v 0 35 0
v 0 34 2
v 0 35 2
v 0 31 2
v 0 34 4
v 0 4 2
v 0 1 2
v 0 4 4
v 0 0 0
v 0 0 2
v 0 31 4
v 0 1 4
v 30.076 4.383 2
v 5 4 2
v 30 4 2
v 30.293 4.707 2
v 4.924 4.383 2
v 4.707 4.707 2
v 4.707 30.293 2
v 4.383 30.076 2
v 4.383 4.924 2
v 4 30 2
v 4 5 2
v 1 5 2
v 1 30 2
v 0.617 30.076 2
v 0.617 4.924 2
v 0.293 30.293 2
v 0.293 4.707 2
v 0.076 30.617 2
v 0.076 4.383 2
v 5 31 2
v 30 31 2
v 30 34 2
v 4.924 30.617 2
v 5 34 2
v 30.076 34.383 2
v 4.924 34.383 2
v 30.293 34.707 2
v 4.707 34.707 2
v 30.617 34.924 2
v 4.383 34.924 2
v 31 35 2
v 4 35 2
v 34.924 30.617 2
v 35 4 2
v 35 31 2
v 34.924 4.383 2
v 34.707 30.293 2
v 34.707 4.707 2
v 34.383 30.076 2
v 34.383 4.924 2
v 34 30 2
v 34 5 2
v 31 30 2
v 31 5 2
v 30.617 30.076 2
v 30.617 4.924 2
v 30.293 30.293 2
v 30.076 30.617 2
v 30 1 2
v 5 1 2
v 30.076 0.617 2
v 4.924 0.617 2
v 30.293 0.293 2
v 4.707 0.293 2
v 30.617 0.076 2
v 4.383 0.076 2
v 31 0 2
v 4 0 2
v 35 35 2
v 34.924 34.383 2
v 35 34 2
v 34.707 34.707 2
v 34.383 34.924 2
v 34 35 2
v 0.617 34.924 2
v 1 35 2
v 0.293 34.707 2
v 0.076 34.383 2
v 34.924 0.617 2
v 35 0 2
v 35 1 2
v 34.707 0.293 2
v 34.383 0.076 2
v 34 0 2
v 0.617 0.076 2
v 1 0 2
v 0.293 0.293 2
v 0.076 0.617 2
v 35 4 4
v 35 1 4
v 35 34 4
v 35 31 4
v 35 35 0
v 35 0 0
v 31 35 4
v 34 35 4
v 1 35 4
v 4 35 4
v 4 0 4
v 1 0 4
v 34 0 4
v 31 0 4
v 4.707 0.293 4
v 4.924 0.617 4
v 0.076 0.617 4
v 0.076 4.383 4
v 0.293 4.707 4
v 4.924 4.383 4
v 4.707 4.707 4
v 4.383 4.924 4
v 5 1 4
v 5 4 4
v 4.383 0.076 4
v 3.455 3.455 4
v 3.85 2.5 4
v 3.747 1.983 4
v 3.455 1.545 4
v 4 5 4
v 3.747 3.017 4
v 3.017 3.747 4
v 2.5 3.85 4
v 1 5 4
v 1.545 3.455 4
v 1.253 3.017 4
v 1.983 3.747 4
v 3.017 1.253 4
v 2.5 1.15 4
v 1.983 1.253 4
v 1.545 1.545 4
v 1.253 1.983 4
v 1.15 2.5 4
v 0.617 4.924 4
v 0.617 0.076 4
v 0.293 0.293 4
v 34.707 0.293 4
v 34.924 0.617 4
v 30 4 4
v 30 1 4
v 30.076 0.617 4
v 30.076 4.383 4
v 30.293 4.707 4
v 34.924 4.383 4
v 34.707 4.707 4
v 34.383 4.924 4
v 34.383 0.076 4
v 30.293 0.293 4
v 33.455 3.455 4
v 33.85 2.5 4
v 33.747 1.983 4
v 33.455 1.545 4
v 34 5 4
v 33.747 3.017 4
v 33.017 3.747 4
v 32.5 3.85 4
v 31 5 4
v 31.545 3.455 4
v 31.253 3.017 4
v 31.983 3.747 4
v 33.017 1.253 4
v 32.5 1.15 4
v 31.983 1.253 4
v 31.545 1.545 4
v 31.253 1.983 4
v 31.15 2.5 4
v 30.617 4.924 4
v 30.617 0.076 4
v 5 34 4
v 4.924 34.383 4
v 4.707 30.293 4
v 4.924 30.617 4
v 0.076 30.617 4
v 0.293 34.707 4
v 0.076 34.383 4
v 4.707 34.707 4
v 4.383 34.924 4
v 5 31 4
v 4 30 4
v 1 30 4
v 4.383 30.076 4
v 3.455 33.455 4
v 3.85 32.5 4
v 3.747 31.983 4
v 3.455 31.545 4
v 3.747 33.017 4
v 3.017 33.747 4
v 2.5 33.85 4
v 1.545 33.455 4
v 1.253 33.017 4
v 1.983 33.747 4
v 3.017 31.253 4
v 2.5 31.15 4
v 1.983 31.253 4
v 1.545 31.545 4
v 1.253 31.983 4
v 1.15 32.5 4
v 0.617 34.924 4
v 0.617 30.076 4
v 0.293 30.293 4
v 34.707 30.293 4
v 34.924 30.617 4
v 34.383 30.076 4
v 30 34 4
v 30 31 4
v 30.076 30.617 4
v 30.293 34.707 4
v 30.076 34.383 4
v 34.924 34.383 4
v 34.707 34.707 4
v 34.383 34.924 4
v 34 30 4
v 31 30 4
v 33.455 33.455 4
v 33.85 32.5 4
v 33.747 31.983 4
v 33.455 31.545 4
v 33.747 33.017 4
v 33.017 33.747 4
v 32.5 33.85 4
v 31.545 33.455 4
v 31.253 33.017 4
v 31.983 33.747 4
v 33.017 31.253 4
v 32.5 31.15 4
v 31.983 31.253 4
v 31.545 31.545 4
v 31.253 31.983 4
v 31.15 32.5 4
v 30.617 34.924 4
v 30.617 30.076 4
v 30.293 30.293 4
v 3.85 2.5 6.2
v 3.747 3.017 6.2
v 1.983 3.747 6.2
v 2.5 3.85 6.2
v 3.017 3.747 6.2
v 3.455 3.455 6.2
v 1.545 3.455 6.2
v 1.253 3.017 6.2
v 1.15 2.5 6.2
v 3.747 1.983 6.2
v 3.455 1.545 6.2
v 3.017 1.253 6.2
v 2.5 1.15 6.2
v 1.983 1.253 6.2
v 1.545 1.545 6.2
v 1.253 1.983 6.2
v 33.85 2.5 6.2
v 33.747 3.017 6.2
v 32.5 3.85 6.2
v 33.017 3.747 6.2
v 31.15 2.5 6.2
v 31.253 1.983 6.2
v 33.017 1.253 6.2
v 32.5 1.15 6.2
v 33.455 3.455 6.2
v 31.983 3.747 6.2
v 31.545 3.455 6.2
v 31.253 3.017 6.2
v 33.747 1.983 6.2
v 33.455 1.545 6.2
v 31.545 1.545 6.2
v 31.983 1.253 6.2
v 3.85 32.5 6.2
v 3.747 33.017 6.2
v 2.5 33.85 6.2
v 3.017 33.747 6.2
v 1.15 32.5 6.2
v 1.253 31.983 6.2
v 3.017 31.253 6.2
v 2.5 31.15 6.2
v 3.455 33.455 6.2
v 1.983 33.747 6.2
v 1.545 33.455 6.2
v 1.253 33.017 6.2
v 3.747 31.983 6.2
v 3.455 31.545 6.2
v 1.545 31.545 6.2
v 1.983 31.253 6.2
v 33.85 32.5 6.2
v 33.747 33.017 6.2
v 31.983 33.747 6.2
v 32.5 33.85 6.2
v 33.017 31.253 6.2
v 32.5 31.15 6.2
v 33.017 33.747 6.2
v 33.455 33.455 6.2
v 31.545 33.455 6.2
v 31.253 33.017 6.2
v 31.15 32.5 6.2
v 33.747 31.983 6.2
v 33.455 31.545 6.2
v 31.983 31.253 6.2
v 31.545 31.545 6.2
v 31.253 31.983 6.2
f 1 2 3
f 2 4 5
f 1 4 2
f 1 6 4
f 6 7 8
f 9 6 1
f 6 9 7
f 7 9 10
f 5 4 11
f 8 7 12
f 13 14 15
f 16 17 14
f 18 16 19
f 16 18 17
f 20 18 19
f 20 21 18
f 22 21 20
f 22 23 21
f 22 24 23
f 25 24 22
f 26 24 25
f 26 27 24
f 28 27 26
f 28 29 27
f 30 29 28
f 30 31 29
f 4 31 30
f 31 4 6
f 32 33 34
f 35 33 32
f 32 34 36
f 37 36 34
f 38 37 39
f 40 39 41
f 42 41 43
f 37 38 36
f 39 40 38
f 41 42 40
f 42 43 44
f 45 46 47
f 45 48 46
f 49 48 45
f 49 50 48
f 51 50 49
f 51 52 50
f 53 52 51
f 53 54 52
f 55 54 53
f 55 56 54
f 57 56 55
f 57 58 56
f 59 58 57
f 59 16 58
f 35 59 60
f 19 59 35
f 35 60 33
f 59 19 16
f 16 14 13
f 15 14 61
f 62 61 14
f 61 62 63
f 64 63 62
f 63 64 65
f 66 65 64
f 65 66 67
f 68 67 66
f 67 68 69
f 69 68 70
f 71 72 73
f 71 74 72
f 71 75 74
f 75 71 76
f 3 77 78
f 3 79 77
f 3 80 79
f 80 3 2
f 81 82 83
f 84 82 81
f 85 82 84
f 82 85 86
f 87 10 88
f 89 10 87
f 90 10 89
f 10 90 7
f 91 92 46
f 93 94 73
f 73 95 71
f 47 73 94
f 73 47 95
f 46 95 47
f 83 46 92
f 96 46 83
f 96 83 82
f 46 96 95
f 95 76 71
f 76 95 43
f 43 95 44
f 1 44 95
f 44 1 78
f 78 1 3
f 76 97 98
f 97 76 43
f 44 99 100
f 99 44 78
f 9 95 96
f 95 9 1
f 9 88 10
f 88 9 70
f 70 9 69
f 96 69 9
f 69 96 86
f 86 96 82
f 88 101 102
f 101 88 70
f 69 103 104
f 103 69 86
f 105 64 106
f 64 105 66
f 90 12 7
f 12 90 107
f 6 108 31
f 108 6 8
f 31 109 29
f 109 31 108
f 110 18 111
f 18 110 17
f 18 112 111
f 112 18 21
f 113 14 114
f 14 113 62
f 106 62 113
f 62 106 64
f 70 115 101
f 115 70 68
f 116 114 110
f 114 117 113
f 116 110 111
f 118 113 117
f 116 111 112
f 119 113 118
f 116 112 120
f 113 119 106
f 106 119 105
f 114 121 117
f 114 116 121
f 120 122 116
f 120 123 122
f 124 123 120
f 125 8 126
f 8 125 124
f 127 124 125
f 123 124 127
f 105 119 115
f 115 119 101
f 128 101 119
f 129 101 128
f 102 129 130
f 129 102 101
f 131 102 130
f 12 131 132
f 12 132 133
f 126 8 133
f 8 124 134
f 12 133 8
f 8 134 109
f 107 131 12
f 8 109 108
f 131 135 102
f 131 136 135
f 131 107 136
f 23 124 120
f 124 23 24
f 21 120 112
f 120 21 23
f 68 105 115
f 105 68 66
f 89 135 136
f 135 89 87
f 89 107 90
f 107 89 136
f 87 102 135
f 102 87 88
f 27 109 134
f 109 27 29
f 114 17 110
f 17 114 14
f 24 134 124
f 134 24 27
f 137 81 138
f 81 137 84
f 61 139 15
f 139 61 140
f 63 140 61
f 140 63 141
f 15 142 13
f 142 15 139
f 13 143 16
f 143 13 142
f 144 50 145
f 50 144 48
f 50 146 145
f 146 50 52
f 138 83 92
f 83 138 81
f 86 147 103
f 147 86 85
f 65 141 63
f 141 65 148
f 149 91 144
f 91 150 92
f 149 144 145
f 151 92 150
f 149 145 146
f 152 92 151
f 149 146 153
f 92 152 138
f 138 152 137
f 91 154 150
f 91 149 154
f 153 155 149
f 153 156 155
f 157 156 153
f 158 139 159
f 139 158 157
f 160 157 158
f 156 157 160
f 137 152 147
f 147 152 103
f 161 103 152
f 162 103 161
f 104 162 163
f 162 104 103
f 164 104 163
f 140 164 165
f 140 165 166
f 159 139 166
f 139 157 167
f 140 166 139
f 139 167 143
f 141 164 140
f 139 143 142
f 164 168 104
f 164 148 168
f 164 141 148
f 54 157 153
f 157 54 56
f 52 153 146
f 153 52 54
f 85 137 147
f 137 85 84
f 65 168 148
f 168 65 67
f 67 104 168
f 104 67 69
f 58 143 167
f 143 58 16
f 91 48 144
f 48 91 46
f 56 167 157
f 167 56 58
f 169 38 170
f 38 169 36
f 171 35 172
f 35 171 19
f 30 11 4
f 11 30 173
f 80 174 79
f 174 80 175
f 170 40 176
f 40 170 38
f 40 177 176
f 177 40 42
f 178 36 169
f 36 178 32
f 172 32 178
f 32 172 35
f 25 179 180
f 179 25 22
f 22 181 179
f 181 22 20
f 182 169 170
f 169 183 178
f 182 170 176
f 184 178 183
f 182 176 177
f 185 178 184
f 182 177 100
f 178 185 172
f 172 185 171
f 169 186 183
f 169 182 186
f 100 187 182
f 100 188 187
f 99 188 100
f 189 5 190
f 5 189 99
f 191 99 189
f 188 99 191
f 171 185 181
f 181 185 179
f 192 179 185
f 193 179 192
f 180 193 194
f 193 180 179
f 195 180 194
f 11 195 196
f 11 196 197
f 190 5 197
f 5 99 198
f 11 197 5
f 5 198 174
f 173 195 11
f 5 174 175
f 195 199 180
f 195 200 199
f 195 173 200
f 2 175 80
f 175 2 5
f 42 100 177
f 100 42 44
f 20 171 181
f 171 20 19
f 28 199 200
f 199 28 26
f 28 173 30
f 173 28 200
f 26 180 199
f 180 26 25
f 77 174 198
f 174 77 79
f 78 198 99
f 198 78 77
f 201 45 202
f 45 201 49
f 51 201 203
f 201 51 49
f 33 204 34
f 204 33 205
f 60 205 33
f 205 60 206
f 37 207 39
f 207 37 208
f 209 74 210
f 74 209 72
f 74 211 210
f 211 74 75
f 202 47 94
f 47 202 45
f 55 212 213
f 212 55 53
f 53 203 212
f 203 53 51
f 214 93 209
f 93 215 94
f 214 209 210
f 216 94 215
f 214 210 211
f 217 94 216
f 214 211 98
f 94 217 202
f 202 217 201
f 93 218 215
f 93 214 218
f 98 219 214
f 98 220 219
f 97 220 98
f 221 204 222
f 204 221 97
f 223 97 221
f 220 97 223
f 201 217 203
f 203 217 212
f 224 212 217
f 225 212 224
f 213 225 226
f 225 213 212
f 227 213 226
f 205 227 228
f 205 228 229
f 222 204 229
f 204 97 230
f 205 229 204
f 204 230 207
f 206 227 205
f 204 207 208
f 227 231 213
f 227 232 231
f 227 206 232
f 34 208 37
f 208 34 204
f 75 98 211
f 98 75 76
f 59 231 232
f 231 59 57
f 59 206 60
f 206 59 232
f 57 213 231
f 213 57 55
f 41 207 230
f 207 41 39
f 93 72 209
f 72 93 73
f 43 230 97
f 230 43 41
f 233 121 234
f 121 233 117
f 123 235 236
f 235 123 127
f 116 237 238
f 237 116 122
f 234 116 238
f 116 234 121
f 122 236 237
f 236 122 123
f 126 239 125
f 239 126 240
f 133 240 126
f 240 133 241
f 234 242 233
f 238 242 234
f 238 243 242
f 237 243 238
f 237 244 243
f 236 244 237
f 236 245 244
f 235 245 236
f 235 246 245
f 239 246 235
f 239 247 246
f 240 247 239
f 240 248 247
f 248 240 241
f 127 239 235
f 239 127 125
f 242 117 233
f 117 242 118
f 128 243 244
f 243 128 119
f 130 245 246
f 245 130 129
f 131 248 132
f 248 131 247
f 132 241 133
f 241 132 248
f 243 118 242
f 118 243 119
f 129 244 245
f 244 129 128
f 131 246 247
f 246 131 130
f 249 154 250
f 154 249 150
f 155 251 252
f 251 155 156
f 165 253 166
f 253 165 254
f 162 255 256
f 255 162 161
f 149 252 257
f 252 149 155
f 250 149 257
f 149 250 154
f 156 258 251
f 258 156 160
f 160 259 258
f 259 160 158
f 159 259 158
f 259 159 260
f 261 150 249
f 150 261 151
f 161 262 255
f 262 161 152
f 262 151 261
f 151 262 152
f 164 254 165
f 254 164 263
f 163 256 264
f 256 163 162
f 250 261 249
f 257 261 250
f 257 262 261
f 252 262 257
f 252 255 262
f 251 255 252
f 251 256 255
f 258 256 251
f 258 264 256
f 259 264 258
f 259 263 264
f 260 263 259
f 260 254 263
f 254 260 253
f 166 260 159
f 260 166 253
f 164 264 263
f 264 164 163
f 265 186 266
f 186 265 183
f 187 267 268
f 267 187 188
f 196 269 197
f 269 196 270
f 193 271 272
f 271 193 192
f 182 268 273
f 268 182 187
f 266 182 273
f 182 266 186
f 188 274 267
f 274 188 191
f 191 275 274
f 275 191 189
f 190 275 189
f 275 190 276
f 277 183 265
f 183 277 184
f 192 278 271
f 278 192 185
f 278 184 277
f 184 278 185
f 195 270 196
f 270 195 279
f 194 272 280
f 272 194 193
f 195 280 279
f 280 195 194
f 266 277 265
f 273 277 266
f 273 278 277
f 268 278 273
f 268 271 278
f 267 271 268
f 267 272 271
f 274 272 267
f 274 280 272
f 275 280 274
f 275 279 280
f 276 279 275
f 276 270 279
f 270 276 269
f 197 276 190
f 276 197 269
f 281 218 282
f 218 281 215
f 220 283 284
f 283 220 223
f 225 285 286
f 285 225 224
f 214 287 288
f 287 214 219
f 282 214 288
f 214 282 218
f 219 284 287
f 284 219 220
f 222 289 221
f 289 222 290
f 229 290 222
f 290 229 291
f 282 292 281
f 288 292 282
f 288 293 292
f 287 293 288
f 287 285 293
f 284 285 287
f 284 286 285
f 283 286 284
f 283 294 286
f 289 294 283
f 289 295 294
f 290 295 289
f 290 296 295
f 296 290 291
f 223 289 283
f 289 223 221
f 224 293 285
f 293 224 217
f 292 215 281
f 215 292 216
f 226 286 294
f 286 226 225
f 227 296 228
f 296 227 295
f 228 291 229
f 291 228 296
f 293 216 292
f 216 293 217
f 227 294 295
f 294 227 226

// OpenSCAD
// file: basics.scad
// basics 1

$fn = 16;

cellRadius = 1.0;

cellSize = 5.0;

layerHeight = 2.0;

pinOffset = 0.15;

module cellCorner(height = layerHeight) {
    cylinder(h = height, r = cellRadius);
}

module cell(height = layerHeight) {
    translate([0, 0, 0]) {
        hull() {
            translate([cellRadius,            cellRadius, 0])            cellCorner(height);
            translate([cellSize - cellRadius, cellRadius, 0])            cellCorner(height);
            translate([cellRadius,            cellSize - cellRadius, 0]) cellCorner(height);
            translate([cellSize - cellRadius, cellSize - cellRadius, 0]) cellCorner(height);
        }
    }
}

module pin(pinOffset = 0) {
    cylinder(h = layerHeight + 0.2, r = cellRadius * 1.5 - pinOffset);
}
// main file
// einfachen Schaltglied Base blech 2

$fn = 16;

cellRadius = 1.0;

cellSize = 5.0;

layerHeight = 2.0;

blechWidth  = cellSize * 7;
blechLength = cellSize * 7;

cellCenter = cellSize / 2;

holeOffset = 0.15;

use <basics.scad>

// base
translate([0,0,0]) cube([blechWidth, blechLength, layerHeight]);
    
// support for base pins
translate([0                    , 0                     , layerHeight]) cell();
translate([blechWidth - cellSize, 0                     , layerHeight]) cell();
translate([0                    , blechLength - cellSize, layerHeight]) cell();
translate([blechWidth - cellSize, blechLength - cellSize, layerHeight]) cell(); 

// holes for base pins
translate([cellSize / 2             , cellSize / 2              , layerHeight * 2]) pin(holeOffset);
translate([blechWidth - cellSize / 2, cellSize / 2              , layerHeight * 2]) pin(holeOffset);
translate([cellSize / 2             , blechLength - cellSize / 2, layerHeight * 2]) pin(holeOffset);
translate([blechWidth - cellSize / 2, blechLength - cellSize / 2, layerHeight * 2]) pin(holeOffset); 


module quadCell() {
    hull() {
        translate([0       , 0       , 0]) cell(layerHeight + 0.2);
        translate([cellSize, 0       , 0]) cell(layerHeight + 0.2);
        translate([0       , cellSize, 0]) cell(layerHeight + 0.2);
        translate([cellSize, cellSize, 0]) cell(layerHeight + 0.2);
    }
}
